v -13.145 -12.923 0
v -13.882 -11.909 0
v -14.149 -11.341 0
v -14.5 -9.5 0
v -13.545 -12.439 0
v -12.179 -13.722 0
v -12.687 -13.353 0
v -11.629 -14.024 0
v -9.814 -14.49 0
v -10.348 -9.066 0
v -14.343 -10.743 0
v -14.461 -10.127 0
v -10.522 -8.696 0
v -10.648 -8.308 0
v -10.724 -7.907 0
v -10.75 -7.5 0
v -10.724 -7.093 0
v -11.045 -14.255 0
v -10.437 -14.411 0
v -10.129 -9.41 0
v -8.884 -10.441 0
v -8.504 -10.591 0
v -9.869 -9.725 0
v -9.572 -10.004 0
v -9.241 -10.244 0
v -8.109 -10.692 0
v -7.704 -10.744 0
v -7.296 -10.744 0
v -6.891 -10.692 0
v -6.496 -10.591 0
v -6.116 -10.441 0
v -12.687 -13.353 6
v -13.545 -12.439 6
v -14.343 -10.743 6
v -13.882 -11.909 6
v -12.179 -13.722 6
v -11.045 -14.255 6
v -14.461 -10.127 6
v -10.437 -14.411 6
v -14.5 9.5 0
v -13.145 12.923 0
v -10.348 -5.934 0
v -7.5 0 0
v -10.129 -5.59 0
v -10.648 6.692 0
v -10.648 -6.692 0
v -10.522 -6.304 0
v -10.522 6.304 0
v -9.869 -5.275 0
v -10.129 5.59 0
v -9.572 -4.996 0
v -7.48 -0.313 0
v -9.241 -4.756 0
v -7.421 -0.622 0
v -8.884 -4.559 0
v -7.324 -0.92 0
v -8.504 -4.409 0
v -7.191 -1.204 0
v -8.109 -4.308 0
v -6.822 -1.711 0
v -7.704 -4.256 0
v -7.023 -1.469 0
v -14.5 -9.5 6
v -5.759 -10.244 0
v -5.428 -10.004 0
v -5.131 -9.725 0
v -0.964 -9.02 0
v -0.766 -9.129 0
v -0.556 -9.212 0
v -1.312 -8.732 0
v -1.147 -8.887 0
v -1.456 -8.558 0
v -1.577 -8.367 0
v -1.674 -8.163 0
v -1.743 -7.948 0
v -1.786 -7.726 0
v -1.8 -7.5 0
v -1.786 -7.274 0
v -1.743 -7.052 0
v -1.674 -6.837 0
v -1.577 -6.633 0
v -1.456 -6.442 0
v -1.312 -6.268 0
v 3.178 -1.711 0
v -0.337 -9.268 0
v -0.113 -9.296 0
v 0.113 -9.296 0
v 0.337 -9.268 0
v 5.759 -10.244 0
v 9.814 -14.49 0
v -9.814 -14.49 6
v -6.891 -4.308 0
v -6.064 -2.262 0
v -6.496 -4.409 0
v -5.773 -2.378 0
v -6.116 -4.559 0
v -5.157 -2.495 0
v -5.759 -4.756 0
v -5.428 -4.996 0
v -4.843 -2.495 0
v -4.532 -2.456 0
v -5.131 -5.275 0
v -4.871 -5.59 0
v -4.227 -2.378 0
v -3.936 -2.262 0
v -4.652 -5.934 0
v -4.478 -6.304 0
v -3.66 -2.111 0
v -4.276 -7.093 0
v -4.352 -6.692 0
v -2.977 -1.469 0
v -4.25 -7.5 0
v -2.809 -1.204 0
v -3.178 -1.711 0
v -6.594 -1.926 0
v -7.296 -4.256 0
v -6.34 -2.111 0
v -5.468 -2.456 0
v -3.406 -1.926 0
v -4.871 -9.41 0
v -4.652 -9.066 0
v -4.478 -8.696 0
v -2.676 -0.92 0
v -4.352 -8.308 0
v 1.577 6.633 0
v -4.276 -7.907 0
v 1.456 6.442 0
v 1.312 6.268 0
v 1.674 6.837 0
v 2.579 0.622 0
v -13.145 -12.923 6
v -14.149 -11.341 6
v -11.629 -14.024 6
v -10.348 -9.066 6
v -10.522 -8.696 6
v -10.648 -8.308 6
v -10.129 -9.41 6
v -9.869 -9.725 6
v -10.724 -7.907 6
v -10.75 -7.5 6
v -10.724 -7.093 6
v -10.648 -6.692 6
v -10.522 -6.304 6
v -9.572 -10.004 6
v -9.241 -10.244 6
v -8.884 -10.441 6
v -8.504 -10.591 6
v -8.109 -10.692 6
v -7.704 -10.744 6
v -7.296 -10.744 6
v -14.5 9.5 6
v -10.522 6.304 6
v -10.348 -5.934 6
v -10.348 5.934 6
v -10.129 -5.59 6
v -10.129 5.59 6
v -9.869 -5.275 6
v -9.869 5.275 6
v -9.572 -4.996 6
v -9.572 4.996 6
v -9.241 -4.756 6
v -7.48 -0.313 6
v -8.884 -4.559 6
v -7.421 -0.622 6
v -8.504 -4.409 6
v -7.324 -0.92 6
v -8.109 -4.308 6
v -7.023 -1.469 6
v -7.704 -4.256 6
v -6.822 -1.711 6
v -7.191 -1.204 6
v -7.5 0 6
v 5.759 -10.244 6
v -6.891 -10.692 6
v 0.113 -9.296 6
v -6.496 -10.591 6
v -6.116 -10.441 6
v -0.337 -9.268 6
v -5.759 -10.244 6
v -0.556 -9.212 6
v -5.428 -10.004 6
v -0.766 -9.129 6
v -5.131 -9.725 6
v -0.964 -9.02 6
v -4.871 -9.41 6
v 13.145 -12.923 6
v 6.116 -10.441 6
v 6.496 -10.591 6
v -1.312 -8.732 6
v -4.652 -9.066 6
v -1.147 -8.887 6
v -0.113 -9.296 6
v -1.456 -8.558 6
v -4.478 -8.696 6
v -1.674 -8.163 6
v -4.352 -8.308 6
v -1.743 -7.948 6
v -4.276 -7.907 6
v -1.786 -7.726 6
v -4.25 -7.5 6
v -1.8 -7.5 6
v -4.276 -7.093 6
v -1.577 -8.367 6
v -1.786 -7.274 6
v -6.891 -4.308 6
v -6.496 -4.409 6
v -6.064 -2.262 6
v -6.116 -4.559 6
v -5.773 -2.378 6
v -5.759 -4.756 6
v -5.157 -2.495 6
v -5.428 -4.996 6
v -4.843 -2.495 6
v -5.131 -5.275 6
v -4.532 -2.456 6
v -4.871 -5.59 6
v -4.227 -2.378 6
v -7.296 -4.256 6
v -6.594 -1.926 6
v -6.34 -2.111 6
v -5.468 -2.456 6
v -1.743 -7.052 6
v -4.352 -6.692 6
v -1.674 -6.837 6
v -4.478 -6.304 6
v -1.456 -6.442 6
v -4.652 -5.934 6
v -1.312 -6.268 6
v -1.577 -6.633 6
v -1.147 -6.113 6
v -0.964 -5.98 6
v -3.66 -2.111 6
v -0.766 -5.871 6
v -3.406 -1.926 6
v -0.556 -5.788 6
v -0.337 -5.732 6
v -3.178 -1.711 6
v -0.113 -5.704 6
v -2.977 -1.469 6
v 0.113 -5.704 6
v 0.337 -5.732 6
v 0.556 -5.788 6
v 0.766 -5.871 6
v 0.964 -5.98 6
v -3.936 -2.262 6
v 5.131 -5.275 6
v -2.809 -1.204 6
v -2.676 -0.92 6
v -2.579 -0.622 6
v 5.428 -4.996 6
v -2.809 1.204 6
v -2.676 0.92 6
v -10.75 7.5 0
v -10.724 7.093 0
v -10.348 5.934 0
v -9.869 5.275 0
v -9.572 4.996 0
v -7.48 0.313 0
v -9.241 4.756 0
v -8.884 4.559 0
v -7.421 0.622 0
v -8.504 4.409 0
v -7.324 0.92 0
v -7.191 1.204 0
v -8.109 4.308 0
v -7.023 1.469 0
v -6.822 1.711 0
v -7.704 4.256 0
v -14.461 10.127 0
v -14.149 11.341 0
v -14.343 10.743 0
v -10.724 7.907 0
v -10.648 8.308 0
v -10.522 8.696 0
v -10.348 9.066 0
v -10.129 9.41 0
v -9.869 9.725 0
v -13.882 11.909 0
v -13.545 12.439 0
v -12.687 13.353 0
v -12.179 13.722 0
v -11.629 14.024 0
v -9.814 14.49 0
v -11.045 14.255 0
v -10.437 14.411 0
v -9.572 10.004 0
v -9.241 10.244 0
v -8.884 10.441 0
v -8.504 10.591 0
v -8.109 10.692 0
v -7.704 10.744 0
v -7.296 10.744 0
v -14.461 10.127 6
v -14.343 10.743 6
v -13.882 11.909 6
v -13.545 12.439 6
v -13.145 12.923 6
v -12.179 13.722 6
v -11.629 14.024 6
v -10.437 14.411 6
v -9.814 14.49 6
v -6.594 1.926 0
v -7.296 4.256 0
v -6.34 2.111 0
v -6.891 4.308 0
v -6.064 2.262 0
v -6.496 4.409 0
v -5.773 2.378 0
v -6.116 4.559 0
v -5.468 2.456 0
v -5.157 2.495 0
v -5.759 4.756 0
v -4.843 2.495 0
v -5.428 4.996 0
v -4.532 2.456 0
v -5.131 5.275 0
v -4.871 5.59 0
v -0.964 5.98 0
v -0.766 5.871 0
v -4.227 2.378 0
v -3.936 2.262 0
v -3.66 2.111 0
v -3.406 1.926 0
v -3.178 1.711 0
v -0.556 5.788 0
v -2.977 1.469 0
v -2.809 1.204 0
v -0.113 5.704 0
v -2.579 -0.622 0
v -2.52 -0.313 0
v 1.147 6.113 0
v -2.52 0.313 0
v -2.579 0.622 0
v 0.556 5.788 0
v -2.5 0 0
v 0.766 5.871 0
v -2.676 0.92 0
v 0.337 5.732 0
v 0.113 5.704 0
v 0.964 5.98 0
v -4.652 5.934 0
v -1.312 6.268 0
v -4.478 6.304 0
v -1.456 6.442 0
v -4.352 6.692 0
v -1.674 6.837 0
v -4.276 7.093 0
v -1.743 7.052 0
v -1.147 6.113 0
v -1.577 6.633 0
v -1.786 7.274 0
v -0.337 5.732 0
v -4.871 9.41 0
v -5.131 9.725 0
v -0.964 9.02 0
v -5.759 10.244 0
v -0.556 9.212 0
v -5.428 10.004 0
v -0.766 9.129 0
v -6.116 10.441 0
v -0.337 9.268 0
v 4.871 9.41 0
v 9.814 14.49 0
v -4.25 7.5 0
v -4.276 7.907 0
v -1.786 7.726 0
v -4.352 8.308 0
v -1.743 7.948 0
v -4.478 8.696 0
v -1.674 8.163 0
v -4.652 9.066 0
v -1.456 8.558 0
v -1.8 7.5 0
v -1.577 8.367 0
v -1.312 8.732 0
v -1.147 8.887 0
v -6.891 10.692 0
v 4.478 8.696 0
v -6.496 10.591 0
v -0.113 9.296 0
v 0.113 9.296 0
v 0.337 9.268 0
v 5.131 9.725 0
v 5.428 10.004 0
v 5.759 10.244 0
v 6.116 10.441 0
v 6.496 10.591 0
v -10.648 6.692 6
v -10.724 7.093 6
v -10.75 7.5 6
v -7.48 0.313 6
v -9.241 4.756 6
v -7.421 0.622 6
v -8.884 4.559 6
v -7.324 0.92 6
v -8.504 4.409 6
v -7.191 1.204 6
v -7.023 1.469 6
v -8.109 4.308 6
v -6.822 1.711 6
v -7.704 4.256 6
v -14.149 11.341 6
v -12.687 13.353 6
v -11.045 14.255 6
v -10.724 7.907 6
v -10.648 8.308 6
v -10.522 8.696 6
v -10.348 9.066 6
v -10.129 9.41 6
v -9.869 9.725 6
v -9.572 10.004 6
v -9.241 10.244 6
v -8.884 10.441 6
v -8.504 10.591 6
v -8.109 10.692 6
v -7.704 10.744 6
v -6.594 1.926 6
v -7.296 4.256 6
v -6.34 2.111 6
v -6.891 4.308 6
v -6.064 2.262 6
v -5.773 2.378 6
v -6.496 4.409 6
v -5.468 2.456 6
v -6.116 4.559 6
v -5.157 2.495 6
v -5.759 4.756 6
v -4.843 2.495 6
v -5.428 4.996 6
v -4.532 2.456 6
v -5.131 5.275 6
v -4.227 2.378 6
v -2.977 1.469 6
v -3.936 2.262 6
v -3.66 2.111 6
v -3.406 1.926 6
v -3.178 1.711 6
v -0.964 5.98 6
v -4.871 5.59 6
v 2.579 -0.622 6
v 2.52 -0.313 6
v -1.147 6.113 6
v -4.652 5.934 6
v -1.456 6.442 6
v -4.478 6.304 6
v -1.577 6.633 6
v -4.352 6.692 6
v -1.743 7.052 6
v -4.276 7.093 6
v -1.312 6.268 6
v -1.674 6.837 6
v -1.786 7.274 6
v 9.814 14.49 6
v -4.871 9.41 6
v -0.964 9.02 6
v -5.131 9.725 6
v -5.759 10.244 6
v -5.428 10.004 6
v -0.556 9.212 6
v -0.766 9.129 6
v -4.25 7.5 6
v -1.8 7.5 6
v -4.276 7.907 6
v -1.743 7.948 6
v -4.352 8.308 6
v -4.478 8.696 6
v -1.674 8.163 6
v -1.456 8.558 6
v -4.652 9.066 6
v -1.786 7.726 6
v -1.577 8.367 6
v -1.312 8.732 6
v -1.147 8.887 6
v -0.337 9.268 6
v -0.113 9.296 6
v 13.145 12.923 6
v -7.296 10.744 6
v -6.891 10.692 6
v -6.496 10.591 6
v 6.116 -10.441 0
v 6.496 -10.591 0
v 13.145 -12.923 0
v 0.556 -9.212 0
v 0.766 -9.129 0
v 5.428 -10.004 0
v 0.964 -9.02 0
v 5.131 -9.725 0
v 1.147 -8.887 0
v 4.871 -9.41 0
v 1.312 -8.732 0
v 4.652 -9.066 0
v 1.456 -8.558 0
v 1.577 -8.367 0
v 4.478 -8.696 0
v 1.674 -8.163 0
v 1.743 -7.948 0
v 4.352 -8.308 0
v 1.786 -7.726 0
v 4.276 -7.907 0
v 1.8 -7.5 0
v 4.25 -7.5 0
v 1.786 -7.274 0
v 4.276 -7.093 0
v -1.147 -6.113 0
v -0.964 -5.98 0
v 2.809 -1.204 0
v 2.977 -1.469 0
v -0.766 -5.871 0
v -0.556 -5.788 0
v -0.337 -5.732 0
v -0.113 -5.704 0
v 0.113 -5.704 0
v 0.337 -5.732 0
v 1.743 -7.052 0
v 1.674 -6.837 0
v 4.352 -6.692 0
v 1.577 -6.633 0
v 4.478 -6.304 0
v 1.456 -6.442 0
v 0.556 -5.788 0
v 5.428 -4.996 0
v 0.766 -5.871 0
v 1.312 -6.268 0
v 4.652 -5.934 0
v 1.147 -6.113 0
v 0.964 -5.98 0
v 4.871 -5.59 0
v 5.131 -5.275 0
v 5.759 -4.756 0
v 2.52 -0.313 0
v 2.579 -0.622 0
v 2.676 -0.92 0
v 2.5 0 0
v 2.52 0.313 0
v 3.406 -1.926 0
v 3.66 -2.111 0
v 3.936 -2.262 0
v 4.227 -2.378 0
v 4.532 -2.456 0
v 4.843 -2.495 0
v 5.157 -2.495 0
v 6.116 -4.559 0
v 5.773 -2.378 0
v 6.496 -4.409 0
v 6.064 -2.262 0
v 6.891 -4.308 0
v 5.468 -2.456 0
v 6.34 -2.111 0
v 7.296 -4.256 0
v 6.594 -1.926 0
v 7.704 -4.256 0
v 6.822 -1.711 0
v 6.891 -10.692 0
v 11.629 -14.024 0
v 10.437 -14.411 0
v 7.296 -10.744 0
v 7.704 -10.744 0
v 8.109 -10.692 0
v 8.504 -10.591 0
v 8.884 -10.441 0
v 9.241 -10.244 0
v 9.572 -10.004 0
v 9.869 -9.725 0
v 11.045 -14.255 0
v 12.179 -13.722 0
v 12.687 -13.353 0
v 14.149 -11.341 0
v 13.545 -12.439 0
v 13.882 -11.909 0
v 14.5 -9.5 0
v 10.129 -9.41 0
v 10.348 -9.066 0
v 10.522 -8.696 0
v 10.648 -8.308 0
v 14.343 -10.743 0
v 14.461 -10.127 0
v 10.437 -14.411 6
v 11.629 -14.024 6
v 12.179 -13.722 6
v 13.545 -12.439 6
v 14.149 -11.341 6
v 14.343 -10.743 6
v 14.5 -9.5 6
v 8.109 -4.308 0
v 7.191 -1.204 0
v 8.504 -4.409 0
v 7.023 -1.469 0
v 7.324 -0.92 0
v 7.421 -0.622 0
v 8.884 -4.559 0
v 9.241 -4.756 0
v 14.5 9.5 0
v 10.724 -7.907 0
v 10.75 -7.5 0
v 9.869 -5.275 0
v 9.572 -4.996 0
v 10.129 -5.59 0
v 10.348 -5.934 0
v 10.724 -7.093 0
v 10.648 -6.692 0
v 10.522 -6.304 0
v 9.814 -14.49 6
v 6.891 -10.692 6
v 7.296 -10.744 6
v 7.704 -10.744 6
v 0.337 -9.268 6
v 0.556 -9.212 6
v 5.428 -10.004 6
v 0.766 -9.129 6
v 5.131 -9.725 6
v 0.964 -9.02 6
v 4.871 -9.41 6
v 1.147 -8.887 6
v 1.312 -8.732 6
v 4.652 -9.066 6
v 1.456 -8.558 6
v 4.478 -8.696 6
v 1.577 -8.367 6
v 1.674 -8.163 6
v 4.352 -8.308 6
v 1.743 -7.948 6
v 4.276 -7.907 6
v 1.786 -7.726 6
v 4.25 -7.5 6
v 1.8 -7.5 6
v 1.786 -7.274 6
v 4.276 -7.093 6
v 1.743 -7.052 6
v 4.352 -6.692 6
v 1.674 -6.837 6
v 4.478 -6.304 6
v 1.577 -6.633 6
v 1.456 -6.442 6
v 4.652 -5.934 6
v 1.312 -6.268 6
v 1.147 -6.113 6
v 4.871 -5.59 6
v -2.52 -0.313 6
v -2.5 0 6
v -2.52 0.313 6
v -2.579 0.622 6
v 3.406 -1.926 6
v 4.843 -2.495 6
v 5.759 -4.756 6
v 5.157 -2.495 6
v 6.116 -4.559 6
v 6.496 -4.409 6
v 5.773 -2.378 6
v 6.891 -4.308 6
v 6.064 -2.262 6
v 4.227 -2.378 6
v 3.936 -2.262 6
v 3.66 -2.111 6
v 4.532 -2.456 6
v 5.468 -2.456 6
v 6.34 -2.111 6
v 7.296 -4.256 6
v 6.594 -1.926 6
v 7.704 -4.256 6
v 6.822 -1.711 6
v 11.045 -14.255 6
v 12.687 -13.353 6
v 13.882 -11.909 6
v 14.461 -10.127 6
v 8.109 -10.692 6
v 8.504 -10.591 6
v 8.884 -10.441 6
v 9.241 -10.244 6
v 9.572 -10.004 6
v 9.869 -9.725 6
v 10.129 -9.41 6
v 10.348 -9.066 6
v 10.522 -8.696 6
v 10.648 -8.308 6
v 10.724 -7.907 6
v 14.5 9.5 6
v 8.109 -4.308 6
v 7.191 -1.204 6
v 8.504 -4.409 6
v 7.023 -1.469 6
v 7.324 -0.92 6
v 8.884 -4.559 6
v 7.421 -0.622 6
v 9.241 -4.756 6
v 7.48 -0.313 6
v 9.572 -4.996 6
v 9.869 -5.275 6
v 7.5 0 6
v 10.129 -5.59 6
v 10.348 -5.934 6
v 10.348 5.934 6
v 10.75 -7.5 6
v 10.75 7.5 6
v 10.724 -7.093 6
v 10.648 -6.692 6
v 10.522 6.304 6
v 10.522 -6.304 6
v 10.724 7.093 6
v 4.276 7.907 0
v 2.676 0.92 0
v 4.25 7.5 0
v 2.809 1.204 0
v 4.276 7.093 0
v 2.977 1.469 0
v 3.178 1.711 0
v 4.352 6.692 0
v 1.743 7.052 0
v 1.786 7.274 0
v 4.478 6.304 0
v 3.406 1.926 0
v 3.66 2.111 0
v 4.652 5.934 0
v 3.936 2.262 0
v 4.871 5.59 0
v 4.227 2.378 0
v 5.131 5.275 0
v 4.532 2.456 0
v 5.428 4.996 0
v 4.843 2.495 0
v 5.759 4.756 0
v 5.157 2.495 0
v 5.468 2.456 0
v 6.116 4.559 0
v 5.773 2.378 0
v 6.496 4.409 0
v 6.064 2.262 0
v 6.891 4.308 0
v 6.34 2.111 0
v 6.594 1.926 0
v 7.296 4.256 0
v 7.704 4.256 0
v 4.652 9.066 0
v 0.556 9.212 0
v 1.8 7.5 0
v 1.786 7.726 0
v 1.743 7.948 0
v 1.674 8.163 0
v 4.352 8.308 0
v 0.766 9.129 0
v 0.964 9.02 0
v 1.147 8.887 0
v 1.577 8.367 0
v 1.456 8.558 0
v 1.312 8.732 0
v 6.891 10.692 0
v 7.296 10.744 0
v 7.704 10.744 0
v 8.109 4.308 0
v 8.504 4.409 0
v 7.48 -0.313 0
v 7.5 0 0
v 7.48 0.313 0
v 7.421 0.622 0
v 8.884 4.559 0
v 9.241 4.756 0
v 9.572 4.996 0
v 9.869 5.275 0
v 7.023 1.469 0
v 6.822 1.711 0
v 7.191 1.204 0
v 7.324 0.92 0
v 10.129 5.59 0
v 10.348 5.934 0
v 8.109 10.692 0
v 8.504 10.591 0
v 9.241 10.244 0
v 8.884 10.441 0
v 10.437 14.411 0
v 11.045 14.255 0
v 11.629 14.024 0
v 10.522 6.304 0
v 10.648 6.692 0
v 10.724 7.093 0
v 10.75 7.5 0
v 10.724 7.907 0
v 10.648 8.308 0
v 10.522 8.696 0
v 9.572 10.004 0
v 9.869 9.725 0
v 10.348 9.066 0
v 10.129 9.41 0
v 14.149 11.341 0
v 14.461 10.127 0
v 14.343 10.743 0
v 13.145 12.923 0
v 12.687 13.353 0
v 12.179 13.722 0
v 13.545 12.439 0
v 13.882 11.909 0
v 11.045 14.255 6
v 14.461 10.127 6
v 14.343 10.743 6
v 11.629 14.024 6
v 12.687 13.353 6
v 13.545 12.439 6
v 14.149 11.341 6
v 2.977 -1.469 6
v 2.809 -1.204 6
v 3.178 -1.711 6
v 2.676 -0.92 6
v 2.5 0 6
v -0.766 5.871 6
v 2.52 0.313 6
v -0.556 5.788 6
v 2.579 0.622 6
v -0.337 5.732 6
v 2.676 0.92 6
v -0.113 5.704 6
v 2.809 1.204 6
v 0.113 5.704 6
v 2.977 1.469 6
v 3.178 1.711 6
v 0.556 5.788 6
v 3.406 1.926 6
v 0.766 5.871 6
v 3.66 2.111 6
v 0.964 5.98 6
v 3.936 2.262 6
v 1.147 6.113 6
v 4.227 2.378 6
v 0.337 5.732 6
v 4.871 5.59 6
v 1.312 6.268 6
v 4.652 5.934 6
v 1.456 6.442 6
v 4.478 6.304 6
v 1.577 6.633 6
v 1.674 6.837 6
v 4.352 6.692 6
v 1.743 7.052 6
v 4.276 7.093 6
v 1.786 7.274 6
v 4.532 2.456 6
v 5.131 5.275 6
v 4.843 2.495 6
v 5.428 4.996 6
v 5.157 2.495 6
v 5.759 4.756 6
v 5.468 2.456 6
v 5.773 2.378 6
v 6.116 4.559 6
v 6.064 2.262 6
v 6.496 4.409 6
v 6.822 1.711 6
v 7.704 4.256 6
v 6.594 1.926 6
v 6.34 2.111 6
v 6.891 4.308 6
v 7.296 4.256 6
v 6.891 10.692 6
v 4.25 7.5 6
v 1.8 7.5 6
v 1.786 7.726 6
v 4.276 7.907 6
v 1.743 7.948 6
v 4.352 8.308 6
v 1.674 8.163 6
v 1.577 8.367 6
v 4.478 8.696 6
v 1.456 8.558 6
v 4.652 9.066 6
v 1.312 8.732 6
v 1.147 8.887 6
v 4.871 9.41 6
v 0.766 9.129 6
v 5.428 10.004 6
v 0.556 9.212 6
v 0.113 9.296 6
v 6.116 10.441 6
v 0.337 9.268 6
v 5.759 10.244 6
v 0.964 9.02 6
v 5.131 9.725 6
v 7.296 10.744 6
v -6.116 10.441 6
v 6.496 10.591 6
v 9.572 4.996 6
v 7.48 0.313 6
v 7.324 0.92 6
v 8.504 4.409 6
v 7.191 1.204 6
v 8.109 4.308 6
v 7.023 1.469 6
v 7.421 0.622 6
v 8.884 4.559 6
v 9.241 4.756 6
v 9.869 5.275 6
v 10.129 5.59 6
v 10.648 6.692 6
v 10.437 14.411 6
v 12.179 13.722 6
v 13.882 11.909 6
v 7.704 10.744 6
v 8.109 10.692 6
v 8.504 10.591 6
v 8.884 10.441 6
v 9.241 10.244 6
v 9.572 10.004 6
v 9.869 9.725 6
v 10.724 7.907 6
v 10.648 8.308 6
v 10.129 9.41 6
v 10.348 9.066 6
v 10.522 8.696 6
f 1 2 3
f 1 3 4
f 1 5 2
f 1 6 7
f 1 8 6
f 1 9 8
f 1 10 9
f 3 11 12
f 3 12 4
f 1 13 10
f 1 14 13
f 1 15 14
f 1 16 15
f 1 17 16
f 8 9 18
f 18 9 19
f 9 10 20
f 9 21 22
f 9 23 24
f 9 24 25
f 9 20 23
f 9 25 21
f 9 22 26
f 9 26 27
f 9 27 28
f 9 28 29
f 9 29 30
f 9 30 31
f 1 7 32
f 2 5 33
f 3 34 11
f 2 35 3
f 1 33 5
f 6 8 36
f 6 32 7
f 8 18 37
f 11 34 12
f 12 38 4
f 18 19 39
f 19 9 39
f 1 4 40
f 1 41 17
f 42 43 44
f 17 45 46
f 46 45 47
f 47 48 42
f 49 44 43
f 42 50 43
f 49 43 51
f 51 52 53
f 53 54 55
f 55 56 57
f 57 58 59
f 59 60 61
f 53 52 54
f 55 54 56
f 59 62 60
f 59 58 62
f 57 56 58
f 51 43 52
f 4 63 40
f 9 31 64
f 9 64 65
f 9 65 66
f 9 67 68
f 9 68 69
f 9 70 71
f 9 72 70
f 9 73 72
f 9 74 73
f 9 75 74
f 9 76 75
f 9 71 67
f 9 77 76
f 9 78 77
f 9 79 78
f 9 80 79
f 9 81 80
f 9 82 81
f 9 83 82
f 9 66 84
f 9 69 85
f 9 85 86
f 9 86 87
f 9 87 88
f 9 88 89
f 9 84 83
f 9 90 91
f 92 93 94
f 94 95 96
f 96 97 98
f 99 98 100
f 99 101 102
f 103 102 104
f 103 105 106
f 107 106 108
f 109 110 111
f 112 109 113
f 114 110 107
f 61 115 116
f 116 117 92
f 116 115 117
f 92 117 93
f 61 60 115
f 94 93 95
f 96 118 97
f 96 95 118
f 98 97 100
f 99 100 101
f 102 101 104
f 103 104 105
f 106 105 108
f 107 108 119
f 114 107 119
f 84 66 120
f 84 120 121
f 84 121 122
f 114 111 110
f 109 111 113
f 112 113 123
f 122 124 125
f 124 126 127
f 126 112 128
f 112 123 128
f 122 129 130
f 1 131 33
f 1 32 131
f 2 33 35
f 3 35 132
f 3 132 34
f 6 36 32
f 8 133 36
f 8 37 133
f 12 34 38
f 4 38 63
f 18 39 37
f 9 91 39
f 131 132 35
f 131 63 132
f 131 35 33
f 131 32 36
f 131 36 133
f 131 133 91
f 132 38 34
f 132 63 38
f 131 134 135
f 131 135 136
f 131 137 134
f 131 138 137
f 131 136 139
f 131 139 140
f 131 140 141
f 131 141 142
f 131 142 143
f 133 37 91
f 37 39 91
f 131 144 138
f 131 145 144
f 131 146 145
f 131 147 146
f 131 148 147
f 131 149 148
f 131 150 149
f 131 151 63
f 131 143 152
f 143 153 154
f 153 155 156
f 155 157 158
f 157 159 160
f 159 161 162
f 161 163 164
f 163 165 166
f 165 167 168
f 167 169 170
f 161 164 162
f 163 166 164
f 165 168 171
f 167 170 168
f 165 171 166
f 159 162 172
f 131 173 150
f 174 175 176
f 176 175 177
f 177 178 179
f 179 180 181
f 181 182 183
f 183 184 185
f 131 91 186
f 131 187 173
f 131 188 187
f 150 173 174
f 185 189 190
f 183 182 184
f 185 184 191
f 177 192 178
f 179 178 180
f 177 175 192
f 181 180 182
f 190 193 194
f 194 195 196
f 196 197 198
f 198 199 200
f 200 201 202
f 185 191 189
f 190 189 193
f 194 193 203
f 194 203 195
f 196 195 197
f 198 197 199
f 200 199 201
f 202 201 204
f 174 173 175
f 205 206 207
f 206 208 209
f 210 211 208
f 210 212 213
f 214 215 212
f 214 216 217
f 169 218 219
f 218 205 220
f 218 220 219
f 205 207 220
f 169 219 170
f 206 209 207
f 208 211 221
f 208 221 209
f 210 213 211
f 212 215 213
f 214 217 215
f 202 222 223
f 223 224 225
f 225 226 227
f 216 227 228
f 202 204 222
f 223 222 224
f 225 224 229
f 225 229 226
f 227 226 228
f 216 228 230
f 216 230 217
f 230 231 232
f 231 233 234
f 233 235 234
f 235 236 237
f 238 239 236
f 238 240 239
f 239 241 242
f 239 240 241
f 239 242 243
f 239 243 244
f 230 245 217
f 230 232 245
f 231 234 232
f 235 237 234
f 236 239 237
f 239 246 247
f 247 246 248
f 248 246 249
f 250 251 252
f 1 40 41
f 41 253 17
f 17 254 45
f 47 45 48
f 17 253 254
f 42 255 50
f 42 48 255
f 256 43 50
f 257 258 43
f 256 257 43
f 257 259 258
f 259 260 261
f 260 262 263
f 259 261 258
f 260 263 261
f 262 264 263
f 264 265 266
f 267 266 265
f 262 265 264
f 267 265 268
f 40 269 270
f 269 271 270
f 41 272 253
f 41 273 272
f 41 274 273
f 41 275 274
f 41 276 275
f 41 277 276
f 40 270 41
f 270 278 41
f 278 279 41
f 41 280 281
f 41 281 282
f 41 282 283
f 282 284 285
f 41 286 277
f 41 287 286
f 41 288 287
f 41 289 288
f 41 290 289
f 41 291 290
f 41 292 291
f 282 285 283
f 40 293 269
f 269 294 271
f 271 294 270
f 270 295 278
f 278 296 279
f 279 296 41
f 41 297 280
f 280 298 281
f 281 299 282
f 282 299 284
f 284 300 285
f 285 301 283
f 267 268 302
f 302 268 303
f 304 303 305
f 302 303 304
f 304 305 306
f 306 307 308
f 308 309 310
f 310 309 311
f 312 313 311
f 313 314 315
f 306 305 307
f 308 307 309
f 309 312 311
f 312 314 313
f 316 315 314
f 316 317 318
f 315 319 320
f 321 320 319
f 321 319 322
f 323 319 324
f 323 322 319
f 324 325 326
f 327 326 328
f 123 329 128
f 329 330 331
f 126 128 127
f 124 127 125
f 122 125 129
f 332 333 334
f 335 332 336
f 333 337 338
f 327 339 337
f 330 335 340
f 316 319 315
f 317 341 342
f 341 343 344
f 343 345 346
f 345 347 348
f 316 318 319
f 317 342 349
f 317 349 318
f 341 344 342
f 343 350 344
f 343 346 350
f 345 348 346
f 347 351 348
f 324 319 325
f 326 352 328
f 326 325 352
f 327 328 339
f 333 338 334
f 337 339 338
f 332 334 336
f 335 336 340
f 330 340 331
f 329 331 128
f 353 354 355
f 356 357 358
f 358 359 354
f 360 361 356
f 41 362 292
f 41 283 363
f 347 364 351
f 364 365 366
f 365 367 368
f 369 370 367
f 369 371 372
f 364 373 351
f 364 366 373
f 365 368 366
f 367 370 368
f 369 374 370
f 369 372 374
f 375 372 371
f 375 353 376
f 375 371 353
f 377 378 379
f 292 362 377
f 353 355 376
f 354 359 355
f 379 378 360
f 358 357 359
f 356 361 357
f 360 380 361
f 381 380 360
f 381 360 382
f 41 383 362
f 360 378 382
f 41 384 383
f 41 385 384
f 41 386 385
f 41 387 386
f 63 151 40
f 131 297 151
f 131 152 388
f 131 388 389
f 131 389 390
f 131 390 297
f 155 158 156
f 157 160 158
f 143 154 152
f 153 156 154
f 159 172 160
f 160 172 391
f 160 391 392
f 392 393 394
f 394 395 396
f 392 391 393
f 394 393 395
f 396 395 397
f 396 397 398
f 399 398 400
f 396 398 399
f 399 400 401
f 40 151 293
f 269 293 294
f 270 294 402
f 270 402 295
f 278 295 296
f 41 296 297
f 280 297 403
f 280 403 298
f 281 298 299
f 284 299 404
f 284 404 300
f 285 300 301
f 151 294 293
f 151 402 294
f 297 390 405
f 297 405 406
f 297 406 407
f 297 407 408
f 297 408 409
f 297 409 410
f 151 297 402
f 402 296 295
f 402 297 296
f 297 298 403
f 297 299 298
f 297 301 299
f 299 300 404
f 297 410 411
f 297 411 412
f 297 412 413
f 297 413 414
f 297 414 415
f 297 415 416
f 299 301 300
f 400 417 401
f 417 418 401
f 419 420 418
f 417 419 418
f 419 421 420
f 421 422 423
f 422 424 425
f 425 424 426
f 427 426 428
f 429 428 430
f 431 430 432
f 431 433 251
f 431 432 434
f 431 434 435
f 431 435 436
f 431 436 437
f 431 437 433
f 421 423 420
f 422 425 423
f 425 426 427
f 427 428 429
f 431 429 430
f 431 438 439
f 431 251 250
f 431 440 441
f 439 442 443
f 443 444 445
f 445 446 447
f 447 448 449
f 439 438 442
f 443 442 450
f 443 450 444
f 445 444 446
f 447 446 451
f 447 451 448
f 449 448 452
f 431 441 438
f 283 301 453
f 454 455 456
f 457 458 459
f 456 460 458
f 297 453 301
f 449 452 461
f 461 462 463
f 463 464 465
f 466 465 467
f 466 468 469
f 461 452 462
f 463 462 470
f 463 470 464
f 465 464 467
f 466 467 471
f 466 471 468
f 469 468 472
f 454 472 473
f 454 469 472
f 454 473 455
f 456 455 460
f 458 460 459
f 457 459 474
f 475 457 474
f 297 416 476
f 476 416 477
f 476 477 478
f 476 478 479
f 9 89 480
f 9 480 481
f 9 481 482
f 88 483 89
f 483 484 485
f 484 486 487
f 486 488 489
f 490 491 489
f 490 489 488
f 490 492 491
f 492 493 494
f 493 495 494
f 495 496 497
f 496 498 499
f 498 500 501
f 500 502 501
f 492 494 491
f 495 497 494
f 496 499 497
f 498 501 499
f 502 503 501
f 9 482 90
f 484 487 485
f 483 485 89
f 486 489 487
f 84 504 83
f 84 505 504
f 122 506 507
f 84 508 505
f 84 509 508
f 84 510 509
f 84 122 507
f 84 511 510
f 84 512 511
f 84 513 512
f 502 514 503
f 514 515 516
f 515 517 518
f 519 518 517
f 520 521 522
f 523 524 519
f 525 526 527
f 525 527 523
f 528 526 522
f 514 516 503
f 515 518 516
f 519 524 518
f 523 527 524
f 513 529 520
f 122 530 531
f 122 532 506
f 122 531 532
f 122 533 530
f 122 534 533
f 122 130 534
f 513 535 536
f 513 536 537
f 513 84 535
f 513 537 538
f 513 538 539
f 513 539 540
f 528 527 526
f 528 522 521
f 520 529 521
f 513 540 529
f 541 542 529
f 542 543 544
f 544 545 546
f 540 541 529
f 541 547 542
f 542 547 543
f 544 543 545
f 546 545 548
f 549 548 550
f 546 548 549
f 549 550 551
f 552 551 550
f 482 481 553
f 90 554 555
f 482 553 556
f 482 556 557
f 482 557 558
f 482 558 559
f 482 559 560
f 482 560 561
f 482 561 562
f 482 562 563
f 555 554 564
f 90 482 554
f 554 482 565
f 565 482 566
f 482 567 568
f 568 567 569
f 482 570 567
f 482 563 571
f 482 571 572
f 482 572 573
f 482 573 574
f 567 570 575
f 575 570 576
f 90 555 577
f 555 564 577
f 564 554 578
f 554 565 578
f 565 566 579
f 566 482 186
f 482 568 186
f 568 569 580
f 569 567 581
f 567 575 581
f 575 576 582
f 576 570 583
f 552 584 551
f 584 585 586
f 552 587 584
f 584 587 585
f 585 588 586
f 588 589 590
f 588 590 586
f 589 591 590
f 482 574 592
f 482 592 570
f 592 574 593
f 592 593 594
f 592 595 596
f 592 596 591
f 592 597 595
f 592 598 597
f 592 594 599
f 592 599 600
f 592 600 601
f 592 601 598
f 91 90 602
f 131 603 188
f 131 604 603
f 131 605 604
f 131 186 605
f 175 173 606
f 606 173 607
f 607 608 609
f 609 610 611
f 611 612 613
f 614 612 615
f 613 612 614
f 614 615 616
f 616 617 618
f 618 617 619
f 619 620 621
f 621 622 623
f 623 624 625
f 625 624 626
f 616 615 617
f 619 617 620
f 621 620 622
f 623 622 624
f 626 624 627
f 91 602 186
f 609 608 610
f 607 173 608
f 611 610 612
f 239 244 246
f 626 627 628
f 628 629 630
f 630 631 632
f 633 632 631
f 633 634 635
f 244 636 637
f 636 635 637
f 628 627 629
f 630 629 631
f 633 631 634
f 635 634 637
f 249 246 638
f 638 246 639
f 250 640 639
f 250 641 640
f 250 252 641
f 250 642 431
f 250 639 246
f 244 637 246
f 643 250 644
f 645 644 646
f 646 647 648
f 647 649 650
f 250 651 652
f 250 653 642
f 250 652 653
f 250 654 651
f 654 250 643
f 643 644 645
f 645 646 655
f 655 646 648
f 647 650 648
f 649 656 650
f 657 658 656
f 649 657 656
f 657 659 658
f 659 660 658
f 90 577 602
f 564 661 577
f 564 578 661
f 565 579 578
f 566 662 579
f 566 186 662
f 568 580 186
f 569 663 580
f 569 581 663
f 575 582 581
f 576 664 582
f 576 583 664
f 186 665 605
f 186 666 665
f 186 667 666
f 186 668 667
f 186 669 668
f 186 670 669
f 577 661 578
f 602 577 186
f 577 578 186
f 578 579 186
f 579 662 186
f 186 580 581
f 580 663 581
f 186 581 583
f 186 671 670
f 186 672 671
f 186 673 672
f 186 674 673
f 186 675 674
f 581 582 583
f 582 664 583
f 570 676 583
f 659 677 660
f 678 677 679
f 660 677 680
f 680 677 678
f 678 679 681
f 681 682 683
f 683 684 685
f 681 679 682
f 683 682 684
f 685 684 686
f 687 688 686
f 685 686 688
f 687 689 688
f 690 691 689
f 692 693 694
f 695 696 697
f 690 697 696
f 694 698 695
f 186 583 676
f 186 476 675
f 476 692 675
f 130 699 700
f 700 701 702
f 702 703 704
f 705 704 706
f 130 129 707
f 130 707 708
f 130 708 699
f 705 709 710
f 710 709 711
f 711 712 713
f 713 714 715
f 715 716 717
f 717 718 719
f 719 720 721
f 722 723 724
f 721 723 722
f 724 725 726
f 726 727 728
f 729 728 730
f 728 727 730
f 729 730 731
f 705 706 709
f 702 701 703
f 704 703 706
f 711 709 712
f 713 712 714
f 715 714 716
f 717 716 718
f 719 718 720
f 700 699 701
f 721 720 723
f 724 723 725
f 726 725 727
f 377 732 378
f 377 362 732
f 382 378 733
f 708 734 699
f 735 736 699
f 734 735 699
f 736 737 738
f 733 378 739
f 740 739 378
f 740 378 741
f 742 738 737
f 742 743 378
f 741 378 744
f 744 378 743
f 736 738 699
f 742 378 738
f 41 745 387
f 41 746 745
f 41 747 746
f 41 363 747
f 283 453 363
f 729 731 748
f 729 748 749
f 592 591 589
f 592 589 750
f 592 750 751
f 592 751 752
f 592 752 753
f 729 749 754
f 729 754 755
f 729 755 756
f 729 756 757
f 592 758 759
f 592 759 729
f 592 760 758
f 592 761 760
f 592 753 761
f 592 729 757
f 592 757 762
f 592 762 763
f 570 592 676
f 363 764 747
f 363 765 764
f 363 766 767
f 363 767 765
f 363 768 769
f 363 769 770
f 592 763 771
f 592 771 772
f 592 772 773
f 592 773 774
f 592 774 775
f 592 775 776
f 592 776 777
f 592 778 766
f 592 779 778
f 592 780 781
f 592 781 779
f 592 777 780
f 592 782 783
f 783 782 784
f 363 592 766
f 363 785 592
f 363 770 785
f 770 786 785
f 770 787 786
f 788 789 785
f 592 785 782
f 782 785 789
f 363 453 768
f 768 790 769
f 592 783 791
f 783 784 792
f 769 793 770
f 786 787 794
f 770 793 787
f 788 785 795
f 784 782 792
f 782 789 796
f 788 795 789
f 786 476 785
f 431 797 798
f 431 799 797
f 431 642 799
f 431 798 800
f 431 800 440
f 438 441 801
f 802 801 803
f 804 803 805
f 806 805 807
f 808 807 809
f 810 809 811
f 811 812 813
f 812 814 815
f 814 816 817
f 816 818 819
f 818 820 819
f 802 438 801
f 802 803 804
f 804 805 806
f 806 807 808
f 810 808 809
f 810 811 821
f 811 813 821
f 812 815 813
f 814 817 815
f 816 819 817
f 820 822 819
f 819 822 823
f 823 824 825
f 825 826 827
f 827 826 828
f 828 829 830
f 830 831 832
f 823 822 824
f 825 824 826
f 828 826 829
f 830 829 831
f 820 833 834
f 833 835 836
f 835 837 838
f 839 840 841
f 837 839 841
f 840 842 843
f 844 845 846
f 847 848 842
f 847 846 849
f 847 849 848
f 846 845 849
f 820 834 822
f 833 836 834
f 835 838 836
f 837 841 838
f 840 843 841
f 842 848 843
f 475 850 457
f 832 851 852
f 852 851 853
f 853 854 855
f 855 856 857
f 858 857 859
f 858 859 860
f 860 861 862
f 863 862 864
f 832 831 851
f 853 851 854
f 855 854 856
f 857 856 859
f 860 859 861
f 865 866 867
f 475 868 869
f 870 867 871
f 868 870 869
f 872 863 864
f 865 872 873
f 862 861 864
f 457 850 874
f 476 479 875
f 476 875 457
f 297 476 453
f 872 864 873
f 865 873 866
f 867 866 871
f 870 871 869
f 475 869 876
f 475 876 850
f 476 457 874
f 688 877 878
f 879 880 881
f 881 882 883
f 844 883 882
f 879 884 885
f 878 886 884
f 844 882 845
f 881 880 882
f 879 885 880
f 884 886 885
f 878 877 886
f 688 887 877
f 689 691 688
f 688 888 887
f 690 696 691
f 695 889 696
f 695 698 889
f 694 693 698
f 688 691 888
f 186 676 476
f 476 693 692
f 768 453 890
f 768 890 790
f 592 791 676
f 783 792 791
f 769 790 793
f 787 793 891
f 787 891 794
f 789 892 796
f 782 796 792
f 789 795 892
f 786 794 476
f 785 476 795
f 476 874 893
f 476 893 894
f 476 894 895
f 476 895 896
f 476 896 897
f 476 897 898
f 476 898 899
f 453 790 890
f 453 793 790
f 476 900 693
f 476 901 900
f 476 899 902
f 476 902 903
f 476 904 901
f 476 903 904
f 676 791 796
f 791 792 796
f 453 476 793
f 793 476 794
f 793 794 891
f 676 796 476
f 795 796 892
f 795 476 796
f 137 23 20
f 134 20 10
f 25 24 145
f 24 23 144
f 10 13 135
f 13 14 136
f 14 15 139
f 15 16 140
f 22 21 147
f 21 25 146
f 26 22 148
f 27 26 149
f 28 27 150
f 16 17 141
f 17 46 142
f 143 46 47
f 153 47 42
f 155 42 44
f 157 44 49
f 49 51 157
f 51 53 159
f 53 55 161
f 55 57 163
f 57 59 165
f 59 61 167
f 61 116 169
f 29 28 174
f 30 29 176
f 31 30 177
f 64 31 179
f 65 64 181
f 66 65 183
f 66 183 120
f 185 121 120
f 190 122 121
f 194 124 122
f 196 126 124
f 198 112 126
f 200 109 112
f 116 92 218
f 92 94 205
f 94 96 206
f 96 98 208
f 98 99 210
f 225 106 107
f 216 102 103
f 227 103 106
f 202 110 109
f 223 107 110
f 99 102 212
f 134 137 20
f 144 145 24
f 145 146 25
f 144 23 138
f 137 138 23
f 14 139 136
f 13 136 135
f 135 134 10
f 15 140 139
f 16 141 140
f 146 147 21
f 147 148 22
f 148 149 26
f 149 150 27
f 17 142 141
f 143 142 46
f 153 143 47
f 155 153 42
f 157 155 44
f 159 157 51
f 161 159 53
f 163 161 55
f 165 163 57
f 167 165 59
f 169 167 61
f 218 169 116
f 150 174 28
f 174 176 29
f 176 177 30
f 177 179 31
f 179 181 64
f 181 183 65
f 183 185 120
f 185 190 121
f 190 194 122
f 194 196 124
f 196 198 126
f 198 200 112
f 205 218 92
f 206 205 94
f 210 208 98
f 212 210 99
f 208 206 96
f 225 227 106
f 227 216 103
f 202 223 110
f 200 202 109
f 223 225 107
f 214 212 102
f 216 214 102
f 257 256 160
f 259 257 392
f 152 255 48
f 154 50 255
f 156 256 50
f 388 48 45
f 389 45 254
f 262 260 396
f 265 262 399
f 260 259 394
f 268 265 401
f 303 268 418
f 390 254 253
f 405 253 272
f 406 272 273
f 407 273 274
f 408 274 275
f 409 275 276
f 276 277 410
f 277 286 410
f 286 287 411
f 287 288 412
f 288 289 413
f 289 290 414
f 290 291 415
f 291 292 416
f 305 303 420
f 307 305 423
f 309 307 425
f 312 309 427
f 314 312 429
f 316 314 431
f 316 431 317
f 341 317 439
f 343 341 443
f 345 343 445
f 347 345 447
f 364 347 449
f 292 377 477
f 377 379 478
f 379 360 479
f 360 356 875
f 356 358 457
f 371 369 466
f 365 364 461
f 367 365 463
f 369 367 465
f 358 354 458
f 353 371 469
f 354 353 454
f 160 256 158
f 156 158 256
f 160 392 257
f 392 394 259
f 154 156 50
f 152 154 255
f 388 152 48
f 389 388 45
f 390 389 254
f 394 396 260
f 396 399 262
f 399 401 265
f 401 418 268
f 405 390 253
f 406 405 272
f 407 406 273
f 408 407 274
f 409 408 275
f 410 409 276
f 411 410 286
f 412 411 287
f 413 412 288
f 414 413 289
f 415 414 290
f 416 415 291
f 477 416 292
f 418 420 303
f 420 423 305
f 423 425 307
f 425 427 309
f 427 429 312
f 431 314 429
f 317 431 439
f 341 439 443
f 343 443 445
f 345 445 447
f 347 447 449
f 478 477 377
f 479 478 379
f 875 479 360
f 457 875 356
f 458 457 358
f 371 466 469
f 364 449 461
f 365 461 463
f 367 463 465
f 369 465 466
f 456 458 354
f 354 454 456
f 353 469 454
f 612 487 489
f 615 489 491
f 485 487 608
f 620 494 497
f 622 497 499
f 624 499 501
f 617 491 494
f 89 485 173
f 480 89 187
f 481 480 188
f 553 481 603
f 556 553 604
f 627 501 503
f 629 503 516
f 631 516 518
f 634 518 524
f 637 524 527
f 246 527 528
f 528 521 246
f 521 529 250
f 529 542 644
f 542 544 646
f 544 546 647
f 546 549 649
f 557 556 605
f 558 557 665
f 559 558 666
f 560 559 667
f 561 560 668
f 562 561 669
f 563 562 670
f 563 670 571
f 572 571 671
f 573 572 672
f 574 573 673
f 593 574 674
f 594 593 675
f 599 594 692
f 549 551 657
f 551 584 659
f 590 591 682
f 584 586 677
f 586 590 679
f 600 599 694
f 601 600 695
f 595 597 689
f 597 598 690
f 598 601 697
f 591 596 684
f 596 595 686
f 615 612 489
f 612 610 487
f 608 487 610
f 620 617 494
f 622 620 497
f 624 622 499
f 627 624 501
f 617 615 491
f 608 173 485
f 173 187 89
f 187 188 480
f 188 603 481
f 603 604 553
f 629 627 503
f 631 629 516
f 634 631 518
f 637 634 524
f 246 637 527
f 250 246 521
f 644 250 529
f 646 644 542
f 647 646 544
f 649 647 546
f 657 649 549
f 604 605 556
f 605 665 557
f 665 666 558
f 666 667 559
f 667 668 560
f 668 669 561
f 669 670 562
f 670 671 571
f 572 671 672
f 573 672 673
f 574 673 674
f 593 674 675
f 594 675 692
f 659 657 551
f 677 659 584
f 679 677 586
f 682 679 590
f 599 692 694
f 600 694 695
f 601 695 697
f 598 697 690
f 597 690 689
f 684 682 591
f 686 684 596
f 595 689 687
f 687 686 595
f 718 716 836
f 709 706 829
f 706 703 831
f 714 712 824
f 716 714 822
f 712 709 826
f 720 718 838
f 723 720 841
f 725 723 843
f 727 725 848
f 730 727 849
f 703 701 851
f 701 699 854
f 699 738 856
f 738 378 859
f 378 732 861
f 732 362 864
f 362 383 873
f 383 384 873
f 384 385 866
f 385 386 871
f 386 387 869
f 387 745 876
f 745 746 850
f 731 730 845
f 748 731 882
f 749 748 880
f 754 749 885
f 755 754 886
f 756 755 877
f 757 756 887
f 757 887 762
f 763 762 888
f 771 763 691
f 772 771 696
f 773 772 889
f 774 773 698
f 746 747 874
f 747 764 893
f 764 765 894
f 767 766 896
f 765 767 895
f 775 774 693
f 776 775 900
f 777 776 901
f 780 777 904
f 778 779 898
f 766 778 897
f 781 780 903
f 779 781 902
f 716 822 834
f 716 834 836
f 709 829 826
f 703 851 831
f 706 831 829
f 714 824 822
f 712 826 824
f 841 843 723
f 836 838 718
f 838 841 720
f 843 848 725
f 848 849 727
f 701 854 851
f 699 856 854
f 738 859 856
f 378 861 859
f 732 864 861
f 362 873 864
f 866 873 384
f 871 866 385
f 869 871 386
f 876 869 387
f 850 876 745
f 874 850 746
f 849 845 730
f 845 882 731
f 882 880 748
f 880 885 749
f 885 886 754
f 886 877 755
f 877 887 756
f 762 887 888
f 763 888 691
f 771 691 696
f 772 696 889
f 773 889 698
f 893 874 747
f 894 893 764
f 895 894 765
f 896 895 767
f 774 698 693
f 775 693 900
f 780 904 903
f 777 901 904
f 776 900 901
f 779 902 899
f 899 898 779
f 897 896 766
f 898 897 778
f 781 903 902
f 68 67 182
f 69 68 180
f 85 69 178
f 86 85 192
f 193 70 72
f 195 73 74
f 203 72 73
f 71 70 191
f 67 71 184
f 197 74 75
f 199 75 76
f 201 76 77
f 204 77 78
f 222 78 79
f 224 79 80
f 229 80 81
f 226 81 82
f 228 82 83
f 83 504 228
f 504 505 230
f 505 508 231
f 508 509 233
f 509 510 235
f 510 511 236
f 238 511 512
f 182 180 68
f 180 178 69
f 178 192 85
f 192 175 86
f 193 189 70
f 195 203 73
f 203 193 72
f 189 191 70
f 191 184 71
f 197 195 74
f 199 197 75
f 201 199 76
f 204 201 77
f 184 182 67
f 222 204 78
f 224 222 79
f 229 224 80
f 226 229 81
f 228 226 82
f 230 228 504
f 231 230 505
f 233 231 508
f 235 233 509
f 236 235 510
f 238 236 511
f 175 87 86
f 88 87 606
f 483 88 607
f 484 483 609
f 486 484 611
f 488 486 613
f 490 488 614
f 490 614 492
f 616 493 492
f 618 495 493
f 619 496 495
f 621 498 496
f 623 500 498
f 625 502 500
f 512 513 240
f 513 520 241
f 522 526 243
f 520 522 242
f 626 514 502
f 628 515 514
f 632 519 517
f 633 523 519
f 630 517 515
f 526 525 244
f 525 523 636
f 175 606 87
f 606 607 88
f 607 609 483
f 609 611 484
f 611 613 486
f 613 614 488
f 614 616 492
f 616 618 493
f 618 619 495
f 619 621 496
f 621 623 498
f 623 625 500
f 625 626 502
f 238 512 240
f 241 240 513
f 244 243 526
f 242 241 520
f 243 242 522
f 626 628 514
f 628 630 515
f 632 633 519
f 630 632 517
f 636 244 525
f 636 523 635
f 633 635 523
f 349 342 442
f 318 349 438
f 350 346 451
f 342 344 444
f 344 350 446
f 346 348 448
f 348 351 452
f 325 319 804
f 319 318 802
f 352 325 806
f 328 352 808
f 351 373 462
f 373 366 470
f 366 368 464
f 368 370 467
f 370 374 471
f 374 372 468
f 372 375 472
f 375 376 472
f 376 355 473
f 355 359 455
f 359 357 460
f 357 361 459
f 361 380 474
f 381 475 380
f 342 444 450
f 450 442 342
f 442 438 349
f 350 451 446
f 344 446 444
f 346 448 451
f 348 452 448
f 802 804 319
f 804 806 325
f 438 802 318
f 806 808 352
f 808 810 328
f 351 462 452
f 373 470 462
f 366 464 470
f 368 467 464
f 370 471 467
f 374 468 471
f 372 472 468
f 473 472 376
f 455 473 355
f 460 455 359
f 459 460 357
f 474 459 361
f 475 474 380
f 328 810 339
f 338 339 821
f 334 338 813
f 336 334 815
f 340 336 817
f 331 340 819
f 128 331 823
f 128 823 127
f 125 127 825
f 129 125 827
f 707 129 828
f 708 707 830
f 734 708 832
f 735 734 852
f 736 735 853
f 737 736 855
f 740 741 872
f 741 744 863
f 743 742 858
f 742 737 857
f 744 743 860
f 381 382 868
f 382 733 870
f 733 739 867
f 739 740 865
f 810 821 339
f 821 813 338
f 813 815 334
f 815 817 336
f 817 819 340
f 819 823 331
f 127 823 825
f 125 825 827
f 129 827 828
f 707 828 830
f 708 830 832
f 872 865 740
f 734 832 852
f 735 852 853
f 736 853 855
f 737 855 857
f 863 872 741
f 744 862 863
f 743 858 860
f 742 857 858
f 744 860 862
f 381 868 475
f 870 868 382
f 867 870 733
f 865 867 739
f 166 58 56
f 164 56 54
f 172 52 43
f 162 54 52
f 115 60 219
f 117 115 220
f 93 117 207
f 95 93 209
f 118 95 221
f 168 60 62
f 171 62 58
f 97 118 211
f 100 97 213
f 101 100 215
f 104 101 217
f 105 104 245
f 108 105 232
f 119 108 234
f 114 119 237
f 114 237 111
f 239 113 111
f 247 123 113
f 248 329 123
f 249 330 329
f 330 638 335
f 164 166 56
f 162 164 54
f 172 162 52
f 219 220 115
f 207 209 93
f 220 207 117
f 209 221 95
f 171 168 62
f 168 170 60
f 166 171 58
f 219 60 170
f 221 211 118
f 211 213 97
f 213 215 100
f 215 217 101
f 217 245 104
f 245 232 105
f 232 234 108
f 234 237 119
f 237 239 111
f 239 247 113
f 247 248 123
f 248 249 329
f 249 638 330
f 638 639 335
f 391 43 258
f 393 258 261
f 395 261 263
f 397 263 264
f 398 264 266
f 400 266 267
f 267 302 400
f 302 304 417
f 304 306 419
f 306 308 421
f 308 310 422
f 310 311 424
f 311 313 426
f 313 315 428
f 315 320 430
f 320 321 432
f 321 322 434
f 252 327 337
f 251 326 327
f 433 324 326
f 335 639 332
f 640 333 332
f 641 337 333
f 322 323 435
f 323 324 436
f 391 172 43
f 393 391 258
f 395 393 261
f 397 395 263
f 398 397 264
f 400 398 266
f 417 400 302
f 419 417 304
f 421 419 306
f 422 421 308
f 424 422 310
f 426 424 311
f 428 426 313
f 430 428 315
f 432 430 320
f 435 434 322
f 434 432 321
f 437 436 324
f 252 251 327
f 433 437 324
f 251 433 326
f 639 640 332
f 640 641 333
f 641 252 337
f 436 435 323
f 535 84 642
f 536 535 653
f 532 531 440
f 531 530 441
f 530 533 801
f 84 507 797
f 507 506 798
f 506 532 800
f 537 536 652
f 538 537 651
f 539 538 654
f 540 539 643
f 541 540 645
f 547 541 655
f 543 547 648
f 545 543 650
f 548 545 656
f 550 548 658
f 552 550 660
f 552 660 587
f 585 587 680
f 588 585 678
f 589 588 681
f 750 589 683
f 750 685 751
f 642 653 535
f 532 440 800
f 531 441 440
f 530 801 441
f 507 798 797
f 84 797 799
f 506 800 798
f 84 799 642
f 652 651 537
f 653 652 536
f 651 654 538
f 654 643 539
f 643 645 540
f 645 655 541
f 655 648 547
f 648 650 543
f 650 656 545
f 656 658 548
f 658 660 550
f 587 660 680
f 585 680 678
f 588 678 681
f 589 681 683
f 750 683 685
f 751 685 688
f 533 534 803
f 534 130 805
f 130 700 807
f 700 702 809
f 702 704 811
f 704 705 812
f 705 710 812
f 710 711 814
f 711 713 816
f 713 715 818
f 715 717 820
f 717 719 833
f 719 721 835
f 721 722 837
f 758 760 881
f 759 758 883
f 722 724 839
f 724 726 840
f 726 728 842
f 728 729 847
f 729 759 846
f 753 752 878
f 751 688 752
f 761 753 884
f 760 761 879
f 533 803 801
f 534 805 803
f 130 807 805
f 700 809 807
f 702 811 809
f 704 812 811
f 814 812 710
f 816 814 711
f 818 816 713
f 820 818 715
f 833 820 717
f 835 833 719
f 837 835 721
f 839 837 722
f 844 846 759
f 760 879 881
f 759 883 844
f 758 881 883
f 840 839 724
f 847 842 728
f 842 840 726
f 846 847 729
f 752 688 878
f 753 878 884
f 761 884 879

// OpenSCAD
$fn = 50;

difference() {
	union() {
		hull() {
			translate(v = [-9.5, 9.5, 0]) {
				cylinder(h = 6, r = 5);
			}
			translate(v = [9.5, 9.5, 0]) {
				cylinder(h = 6, r = 5);
			}
			translate(v = [-9.5, -9.5, 0]) {
				cylinder(h = 6, r = 5);
			}
			translate(v = [9.5, -9.5, 0]) {
				cylinder(h = 6, r = 5);
			}
		}
	}
	union() {
		translate(v = [-7.5, -7.5, 0]) {
			cylinder(h = 6, r = 3.25);
		}
		translate(v = [-7.5, 7.5, 0]) {
			cylinder(h = 6, r = 3.25);
		}
		translate(v = [7.5, -7.5, 0]) {
			cylinder(h = 6, r = 3.25);
		}
		translate(v = [7.5, 7.5, 0]) {
			cylinder(h = 6, r = 3.25);
		}
		translate(v = [0.0, -7.5, 0]) {
			cylinder(h = 6, r = 1.8);
		}
		translate(v = [0.0, 7.5, 0]) {
			cylinder(h = 6, r = 1.8);
		}
		translate(v = [-5.0, 0, 0.0]) {
			cylinder(h = 6, r = 2.5);
		}
		translate(v = [5.0, 0, 0.0]) {
			cylinder(h = 6, r = 2.5);
		}
	}
}
